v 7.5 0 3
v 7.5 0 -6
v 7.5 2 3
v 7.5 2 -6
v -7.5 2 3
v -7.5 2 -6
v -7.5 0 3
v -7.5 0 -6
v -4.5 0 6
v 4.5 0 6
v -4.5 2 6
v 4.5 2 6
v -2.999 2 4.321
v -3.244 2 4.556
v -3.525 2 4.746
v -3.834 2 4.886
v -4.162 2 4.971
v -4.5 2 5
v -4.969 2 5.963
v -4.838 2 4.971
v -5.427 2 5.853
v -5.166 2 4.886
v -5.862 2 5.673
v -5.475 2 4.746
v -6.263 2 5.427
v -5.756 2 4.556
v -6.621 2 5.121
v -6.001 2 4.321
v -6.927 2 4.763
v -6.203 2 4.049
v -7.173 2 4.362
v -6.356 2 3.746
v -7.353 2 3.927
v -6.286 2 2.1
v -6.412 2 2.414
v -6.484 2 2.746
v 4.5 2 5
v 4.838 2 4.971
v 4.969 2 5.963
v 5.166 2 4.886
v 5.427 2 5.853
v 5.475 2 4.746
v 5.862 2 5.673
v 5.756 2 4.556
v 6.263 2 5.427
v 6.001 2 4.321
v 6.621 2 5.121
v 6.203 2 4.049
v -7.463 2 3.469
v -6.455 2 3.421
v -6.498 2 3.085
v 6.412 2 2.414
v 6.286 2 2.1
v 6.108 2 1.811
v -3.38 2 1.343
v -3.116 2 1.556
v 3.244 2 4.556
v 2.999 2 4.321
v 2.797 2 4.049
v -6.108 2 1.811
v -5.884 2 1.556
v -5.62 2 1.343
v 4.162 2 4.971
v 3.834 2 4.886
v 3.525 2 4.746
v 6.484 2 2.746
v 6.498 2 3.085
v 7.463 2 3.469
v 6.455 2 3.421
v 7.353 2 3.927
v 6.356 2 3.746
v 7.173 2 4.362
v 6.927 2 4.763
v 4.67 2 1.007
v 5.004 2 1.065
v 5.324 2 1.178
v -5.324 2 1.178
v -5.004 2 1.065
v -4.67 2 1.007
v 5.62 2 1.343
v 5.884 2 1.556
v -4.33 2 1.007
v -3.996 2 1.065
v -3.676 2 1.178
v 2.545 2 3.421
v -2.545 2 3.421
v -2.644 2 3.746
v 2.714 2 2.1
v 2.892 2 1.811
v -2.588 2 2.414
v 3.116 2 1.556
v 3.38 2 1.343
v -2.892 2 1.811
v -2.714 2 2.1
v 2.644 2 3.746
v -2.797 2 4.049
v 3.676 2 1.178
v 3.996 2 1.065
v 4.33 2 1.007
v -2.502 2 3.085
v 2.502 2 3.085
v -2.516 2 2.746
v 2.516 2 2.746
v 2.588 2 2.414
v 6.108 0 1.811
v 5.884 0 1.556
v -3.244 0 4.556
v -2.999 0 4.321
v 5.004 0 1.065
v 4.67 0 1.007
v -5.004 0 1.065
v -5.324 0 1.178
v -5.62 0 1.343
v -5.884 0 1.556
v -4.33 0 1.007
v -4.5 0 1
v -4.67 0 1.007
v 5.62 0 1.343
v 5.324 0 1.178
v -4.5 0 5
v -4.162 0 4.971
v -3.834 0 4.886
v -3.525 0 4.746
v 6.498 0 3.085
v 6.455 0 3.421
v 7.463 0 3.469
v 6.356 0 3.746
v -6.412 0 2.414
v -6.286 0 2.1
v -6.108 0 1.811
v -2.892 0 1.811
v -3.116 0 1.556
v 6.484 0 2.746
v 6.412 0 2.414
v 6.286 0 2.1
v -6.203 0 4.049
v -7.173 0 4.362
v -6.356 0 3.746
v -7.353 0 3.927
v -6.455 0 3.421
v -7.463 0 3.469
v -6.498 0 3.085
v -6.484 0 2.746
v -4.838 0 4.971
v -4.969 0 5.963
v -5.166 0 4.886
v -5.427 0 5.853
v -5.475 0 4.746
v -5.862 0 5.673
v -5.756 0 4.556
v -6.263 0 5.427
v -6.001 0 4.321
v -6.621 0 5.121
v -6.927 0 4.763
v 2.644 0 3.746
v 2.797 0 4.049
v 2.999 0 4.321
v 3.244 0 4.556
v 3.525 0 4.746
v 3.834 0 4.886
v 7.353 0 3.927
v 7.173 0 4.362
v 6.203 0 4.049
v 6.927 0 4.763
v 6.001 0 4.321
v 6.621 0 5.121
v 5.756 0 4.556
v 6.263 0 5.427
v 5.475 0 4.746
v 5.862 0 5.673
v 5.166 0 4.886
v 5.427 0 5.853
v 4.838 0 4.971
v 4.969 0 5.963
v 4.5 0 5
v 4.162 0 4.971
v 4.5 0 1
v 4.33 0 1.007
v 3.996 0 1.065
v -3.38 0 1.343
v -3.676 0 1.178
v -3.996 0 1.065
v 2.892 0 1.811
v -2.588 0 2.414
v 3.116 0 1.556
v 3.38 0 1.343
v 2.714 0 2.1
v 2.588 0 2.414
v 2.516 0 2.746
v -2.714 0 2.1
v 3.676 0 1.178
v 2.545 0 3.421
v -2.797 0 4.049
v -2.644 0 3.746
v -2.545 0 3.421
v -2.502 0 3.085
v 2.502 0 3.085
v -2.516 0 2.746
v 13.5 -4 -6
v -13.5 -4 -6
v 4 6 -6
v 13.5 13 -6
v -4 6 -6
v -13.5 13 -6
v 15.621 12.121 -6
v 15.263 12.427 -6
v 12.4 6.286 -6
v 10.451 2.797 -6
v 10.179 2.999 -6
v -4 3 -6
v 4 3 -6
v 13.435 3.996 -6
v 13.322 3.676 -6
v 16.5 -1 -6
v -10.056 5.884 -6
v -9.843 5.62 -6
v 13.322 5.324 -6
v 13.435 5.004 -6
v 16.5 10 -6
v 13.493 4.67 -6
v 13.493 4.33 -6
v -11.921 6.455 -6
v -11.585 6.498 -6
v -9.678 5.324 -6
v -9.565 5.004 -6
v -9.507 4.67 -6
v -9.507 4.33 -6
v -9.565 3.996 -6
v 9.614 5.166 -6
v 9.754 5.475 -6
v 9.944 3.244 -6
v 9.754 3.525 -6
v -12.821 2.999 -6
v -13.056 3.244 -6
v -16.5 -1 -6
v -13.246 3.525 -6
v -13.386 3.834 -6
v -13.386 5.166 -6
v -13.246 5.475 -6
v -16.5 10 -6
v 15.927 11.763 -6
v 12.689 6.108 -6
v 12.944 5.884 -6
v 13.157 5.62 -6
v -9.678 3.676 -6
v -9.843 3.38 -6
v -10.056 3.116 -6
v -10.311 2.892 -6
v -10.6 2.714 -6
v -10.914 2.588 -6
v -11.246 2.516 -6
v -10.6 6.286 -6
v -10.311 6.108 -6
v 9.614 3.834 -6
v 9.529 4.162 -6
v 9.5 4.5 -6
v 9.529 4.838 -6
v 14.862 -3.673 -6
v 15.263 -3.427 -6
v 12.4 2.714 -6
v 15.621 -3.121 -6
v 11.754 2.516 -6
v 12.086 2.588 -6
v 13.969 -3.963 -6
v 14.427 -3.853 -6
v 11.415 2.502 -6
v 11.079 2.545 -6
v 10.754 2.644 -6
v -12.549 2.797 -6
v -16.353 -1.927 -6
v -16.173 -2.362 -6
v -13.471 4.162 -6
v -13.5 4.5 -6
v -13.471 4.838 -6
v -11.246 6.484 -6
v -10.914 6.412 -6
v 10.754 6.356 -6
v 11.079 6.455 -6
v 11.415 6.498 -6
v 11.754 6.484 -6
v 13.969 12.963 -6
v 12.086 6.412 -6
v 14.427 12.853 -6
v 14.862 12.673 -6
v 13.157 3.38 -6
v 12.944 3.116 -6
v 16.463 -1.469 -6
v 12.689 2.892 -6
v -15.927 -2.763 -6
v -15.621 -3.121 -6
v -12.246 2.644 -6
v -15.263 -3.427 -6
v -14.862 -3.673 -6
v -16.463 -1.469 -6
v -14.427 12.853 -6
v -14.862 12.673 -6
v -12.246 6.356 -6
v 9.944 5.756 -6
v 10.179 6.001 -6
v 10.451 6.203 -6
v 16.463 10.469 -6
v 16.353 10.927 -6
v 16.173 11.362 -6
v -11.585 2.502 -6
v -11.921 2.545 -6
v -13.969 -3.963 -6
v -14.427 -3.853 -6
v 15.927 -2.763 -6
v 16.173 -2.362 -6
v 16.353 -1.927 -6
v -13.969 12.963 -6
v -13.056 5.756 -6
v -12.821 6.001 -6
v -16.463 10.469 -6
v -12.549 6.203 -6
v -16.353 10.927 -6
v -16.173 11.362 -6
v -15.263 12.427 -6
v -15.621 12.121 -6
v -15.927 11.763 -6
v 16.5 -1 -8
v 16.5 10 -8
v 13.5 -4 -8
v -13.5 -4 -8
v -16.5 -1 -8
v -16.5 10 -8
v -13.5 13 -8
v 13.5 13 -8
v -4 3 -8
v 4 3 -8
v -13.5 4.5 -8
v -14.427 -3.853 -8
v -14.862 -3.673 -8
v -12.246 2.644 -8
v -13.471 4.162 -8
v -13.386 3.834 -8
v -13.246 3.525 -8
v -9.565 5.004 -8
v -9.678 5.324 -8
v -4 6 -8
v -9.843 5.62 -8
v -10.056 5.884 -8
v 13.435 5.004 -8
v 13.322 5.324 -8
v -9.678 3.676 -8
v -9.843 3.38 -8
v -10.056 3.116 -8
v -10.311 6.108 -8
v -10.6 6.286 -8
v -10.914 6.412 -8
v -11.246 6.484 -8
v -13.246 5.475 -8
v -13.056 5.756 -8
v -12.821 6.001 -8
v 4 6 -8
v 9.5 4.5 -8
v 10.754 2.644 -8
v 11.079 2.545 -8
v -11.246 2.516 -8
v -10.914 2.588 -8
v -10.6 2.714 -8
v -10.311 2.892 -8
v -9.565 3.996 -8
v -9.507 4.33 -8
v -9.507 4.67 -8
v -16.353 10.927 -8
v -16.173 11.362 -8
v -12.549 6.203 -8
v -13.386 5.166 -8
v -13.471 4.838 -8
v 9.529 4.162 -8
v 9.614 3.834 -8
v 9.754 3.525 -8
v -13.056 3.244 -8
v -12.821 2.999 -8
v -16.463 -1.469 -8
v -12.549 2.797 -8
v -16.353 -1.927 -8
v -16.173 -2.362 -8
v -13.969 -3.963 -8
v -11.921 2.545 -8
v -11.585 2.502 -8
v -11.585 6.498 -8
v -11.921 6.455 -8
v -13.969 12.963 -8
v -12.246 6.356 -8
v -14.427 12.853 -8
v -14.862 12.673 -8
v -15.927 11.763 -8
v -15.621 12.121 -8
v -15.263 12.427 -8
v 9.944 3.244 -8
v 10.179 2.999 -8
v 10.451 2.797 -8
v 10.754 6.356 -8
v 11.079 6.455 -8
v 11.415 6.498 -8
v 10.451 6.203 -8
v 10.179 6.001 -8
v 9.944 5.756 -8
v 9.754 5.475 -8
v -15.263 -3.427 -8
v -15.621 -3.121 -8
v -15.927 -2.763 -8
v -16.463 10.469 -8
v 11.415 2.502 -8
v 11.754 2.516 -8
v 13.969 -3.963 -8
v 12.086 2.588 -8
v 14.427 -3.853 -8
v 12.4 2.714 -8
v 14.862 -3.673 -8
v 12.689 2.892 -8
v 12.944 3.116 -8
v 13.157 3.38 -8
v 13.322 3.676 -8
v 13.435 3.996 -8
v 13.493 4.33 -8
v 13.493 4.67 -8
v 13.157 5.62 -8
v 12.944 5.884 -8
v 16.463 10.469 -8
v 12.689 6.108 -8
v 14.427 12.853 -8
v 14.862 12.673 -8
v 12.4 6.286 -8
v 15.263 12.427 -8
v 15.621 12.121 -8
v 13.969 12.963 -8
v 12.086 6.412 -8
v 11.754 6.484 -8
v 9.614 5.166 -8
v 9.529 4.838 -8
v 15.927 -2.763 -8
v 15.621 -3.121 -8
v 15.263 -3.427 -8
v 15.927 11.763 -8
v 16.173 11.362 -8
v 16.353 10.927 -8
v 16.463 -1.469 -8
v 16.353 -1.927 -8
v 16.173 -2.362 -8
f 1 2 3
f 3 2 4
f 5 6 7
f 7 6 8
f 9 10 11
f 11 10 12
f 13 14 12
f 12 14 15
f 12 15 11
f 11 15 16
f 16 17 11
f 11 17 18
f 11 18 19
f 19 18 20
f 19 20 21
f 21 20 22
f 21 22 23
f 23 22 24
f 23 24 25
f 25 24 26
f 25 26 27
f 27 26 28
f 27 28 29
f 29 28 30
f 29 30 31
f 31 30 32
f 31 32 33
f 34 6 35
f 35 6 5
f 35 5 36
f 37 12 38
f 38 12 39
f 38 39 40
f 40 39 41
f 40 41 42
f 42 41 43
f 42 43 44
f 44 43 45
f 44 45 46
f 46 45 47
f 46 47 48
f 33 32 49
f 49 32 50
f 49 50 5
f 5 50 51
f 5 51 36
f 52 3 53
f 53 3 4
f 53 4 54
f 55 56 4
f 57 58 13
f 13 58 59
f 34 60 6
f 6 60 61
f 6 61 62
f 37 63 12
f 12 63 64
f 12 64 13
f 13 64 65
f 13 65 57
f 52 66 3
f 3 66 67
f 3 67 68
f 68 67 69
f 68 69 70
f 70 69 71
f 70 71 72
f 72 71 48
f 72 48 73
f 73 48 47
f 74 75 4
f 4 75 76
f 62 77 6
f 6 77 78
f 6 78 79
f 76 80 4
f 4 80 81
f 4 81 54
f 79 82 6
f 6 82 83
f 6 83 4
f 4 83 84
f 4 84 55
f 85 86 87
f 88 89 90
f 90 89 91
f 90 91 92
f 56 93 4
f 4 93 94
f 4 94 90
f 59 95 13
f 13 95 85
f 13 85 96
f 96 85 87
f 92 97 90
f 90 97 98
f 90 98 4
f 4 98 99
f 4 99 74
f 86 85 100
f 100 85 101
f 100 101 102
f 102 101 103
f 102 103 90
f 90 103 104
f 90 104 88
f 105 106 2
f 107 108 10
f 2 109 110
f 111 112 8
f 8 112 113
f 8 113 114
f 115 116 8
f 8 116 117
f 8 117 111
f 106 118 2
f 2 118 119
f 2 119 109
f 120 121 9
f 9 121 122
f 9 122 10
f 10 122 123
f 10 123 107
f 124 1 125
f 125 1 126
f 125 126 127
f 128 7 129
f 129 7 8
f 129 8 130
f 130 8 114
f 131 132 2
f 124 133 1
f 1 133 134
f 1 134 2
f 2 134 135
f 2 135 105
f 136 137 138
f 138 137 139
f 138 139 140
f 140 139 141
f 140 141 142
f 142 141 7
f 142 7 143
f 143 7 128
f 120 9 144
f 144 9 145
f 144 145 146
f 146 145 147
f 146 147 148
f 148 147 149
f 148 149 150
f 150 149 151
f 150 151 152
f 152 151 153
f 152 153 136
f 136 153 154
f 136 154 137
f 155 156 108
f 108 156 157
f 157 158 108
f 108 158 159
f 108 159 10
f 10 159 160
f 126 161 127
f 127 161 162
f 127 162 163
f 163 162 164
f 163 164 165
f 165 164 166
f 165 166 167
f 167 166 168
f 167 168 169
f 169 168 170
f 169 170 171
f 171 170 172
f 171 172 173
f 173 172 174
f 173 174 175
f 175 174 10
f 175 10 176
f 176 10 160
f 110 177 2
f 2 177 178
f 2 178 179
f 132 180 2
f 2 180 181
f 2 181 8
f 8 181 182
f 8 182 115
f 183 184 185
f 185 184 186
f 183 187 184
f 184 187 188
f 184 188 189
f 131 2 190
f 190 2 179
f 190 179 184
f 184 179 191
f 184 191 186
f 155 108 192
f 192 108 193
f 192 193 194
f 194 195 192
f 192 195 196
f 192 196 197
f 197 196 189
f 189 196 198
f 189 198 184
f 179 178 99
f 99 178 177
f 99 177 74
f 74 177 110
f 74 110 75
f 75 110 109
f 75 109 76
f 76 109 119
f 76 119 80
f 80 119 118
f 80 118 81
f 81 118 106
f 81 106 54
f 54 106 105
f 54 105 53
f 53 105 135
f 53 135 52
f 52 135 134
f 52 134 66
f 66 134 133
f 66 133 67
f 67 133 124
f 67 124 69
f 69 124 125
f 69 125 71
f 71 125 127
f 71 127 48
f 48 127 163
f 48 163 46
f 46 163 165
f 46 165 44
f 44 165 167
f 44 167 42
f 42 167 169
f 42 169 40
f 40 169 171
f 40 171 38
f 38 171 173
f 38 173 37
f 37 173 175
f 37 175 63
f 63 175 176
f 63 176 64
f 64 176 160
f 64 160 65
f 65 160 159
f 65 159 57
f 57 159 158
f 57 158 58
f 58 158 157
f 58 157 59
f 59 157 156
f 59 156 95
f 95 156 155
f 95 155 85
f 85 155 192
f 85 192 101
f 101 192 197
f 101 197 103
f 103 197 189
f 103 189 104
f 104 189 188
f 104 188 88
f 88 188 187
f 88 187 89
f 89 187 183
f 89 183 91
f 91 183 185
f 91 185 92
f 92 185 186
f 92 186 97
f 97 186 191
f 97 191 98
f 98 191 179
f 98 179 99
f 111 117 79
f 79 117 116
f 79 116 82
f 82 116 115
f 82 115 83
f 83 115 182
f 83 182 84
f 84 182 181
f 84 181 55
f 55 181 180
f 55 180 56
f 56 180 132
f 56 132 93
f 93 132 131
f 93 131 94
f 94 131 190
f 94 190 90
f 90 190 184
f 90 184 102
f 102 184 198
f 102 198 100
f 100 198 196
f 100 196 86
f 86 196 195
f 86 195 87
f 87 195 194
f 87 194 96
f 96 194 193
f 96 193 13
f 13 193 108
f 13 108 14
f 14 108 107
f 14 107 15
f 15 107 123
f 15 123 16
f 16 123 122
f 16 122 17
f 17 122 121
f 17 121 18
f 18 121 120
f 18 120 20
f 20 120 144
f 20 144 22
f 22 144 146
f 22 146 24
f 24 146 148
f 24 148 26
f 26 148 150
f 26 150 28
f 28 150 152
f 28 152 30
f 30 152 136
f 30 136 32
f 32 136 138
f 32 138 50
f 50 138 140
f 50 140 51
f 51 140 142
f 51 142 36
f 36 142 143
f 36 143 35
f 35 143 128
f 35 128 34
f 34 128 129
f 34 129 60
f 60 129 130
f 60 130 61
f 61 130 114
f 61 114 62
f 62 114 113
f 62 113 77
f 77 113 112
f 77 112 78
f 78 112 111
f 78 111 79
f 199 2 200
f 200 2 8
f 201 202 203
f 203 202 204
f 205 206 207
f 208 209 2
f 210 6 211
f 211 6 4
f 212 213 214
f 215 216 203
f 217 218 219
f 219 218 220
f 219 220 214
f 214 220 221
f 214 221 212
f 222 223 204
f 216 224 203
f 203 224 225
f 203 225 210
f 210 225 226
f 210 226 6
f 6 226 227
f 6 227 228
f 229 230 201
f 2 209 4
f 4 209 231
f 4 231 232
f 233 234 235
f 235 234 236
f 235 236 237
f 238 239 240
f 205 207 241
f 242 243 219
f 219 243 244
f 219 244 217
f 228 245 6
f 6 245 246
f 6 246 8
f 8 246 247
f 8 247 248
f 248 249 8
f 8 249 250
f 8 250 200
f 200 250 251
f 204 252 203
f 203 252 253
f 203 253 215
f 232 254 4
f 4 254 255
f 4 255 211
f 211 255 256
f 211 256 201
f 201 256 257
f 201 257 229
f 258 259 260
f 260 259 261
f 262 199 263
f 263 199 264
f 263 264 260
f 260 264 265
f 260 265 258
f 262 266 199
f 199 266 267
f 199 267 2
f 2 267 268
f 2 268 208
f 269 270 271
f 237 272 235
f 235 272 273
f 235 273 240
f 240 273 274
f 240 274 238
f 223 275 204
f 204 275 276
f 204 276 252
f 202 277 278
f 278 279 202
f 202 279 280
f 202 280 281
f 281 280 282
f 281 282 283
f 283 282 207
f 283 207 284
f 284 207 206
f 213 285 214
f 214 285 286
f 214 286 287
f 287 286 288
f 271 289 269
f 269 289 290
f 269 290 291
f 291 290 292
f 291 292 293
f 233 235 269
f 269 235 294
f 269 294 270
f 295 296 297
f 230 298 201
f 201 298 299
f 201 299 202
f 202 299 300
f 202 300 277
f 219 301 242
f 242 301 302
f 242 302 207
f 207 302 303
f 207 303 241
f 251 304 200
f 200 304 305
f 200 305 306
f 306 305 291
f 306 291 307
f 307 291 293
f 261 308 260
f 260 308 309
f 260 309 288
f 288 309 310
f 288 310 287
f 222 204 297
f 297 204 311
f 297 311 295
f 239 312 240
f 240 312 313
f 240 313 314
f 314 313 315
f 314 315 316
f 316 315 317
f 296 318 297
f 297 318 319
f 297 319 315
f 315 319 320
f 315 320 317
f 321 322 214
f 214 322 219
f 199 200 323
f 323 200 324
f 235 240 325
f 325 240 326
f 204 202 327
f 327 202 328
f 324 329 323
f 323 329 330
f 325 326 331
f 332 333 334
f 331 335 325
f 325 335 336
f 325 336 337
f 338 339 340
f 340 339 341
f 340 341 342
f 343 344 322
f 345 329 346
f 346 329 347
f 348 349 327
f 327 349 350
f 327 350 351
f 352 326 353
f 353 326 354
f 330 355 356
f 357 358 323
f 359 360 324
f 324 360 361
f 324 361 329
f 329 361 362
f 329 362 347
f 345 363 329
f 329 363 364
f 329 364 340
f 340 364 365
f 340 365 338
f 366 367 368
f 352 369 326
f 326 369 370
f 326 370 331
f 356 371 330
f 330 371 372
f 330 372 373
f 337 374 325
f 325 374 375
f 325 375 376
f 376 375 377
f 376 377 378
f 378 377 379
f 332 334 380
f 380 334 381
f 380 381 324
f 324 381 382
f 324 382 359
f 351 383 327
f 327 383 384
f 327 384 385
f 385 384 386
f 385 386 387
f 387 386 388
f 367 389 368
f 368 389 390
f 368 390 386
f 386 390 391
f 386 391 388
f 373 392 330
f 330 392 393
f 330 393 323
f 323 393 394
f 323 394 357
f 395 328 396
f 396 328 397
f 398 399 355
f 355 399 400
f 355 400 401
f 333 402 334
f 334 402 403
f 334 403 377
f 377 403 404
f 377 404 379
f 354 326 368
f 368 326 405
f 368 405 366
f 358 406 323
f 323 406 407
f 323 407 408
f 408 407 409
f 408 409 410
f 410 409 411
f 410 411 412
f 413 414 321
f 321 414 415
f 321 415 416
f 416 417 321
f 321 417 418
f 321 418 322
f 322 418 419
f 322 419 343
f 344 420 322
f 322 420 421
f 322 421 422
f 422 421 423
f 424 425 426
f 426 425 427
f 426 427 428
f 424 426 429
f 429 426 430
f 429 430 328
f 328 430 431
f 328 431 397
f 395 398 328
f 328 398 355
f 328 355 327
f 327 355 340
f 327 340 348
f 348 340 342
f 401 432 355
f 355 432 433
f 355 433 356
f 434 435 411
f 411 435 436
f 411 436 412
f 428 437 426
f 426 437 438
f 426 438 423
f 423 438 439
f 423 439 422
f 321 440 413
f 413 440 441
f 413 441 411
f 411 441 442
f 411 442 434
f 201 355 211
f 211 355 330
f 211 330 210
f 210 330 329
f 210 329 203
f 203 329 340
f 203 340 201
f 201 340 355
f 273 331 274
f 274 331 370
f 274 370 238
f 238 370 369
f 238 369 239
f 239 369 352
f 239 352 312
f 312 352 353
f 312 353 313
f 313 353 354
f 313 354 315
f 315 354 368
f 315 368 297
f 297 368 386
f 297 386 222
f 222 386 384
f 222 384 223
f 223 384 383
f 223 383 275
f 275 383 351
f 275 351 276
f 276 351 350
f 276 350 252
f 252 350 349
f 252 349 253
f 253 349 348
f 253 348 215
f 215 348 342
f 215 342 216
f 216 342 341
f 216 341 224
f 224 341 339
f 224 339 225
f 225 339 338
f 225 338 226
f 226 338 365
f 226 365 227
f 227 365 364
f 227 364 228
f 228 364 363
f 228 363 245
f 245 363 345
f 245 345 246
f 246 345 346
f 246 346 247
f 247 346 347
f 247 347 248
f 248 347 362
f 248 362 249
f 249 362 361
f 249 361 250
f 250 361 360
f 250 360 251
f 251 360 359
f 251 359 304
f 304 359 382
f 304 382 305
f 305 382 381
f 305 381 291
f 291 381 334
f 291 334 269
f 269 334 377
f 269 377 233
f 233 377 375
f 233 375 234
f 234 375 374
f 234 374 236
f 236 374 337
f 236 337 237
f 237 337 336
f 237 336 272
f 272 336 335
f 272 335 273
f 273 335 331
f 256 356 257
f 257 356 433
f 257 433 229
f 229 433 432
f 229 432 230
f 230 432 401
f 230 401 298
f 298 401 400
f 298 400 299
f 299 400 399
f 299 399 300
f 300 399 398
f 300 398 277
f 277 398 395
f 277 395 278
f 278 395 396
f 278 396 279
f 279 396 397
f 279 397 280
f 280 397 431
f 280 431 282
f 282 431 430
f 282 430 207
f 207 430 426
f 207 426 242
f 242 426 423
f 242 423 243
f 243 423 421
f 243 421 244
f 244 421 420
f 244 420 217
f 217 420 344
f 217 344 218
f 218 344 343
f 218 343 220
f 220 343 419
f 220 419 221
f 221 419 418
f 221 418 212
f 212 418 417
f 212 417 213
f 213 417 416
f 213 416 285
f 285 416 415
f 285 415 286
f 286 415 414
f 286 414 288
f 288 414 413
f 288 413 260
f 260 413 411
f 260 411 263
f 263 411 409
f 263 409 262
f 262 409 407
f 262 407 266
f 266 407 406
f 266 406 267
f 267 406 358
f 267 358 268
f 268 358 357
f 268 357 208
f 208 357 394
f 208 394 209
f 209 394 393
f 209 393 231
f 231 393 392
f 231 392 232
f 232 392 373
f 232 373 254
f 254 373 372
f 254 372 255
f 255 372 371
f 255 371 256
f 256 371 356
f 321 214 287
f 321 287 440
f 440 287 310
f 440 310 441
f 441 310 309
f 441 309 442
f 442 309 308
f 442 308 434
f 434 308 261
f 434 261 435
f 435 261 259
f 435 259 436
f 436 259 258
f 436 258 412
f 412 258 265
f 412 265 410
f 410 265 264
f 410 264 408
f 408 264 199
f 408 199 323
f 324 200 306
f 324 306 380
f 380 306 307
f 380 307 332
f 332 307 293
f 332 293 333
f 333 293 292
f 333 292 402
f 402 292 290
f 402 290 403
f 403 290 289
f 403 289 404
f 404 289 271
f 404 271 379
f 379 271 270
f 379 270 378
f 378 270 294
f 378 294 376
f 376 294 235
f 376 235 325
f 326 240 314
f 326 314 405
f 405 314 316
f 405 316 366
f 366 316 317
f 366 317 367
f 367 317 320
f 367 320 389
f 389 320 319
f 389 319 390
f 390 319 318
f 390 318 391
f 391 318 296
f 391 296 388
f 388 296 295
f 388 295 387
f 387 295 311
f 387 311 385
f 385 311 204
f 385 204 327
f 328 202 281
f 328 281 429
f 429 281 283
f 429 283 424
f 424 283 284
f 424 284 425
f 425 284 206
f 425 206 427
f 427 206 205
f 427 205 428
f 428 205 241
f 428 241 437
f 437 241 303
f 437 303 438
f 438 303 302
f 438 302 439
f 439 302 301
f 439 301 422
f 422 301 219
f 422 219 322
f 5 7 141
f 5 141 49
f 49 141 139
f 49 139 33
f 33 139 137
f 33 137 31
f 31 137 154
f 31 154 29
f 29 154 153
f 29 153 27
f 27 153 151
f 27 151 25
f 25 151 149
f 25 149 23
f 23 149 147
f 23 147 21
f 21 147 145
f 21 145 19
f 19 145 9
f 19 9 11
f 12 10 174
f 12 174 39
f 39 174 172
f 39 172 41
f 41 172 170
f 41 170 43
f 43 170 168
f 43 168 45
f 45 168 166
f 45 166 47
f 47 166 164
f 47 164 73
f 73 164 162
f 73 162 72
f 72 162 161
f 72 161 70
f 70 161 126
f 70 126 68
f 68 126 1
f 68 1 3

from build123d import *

# Parameters (mm, degrees)
CROQUIS1_W              = 15
CROQUIS1_H              = 12
SALIENTE_EXTRUIR1_DEPTH = 2
CORTAR_EXTRUIR1_REACH   = 11.811
CROQUIS2_R              = 2
CROQUIS3_W              = 33
CROQUIS3_H              = 17
SALIENTE_EXTRUIR2_DEPTH = 2
CORTAR_EXTRUIR3_REACH   = 26.192
CROQUIS5_W              = 8
CROQUIS5_H              = 3
CORTAR_EXTRUIR4_REACH   = 27.244
CROQUIS6_R              = 2
REDONDEO1_R             = 3
REDONDEO2_R             = 3


with BuildPart() as part:
    # Croquis1 → Saliente-Extruir1 (new body)
    with BuildSketch(Plane(origin=(0, 0, 0), x_dir=(1, 0, 0), z_dir=(0, 1, 0))):
        Rectangle(CROQUIS1_W, CROQUIS1_H)
    extrude(amount=SALIENTE_EXTRUIR1_DEPTH)

    # Croquis2 → Cortar-Extruir1 (cut, up to next)
    with BuildSketch(Plane(origin=(0, 2, 0), x_dir=(1, 0, 0), z_dir=(0, 1, 0)), mode=Mode.PRIVATE) as cortar_extruir1_sk1:
        with Locations(Location((-4.5, -3, 0), (0, 0, 270))):
            Circle(CROQUIS2_R)
    cortar_extruir1_tool1 = extrude(cortar_extruir1_sk1.sketch, amount=-CORTAR_EXTRUIR1_REACH, mode=Mode.PRIVATE) & part.part
    # Croquis2 → Cortar-Extruir1 (cut, up to next)
    with BuildSketch(Plane(origin=(0, 2, 0), x_dir=(1, 0, 0), z_dir=(0, 1, 0)), mode=Mode.PRIVATE) as cortar_extruir1_sk2:
        with Locations(Location((4.5, -3, 0), (0, 0, 270))):
            Circle(CROQUIS2_R)
    cortar_extruir1_tool2 = extrude(cortar_extruir1_sk2.sketch, amount=-CORTAR_EXTRUIR1_REACH, mode=Mode.PRIVATE) & part.part
    add(cortar_extruir1_tool1.solids().sort_by_distance((-4.5, 2, 3))[0], mode=Mode.SUBTRACT)
    add(cortar_extruir1_tool2.solids().sort_by_distance((4.5, 2, 3))[0], mode=Mode.SUBTRACT)

    # Croquis3 → Saliente-Extruir2 (add)
    with BuildSketch(Plane(origin=(0, 0, -6), x_dir=(-1, 0, 0), z_dir=(0, 0, -1))):
        with Locations((0, 4.5)):
            Rectangle(CROQUIS3_W, CROQUIS3_H)
    extrude(amount=SALIENTE_EXTRUIR2_DEPTH)

    # Croquis5 → Cortar-Extruir3 (cut, up to next)
    with BuildSketch(Plane.XY.offset(-6), mode=Mode.PRIVATE) as cortar_extruir3_sk1:
        with Locations((0, 4.5)):
            Rectangle(CROQUIS5_W, CROQUIS5_H)
    cortar_extruir3_tool1 = extrude(cortar_extruir3_sk1.sketch, amount=-CORTAR_EXTRUIR3_REACH, mode=Mode.PRIVATE) & part.part
    add(cortar_extruir3_tool1.solids().sort_by_distance((0, 4.5, -6))[0], mode=Mode.SUBTRACT)

    # Croquis6 → Cortar-Extruir4 (cut, up to next)
    with BuildSketch(Plane(origin=(0, 0, -8), x_dir=(-1, 0, 0), z_dir=(0, 0, -1)), mode=Mode.PRIVATE) as cortar_extruir4_sk1:
        with Locations((-11.5, 4.5)):
            Circle(CROQUIS6_R)
    cortar_extruir4_tool1 = extrude(cortar_extruir4_sk1.sketch, amount=-CORTAR_EXTRUIR4_REACH, mode=Mode.PRIVATE) & part.part
    # Croquis6 → Cortar-Extruir4 (cut, up to next)
    with BuildSketch(Plane(origin=(0, 0, -8), x_dir=(-1, 0, 0), z_dir=(0, 0, -1)), mode=Mode.PRIVATE) as cortar_extruir4_sk2:
        with Locations((11.5, 4.5)):
            Circle(CROQUIS6_R)
    cortar_extruir4_tool2 = extrude(cortar_extruir4_sk2.sketch, amount=-CORTAR_EXTRUIR4_REACH, mode=Mode.PRIVATE) & part.part
    add(cortar_extruir4_tool1.solids().sort_by_distance((11.5, 4.5, -8))[0], mode=Mode.SUBTRACT)
    add(cortar_extruir4_tool2.solids().sort_by_distance((-11.5, 4.5, -8))[0], mode=Mode.SUBTRACT)

    # Redondeo1
    redondeo1_edges = [part.edges().sort_by_distance(p)[0] for p in [
        (16.5, 13, -7),
        (16.5, -4, -7),
        (-16.5, -4, -7),
        (-16.5, 13, -7),
    ]]
    fillet(redondeo1_edges, radius=REDONDEO1_R)

    # Redondeo2
    redondeo2_edges = [part.edges().sort_by_distance(p)[0] for p in [
        (7.5, 1, 6),
        (-7.5, 1, 6),
    ]]
    fillet(redondeo2_edges, radius=REDONDEO2_R)


solid = part.part
